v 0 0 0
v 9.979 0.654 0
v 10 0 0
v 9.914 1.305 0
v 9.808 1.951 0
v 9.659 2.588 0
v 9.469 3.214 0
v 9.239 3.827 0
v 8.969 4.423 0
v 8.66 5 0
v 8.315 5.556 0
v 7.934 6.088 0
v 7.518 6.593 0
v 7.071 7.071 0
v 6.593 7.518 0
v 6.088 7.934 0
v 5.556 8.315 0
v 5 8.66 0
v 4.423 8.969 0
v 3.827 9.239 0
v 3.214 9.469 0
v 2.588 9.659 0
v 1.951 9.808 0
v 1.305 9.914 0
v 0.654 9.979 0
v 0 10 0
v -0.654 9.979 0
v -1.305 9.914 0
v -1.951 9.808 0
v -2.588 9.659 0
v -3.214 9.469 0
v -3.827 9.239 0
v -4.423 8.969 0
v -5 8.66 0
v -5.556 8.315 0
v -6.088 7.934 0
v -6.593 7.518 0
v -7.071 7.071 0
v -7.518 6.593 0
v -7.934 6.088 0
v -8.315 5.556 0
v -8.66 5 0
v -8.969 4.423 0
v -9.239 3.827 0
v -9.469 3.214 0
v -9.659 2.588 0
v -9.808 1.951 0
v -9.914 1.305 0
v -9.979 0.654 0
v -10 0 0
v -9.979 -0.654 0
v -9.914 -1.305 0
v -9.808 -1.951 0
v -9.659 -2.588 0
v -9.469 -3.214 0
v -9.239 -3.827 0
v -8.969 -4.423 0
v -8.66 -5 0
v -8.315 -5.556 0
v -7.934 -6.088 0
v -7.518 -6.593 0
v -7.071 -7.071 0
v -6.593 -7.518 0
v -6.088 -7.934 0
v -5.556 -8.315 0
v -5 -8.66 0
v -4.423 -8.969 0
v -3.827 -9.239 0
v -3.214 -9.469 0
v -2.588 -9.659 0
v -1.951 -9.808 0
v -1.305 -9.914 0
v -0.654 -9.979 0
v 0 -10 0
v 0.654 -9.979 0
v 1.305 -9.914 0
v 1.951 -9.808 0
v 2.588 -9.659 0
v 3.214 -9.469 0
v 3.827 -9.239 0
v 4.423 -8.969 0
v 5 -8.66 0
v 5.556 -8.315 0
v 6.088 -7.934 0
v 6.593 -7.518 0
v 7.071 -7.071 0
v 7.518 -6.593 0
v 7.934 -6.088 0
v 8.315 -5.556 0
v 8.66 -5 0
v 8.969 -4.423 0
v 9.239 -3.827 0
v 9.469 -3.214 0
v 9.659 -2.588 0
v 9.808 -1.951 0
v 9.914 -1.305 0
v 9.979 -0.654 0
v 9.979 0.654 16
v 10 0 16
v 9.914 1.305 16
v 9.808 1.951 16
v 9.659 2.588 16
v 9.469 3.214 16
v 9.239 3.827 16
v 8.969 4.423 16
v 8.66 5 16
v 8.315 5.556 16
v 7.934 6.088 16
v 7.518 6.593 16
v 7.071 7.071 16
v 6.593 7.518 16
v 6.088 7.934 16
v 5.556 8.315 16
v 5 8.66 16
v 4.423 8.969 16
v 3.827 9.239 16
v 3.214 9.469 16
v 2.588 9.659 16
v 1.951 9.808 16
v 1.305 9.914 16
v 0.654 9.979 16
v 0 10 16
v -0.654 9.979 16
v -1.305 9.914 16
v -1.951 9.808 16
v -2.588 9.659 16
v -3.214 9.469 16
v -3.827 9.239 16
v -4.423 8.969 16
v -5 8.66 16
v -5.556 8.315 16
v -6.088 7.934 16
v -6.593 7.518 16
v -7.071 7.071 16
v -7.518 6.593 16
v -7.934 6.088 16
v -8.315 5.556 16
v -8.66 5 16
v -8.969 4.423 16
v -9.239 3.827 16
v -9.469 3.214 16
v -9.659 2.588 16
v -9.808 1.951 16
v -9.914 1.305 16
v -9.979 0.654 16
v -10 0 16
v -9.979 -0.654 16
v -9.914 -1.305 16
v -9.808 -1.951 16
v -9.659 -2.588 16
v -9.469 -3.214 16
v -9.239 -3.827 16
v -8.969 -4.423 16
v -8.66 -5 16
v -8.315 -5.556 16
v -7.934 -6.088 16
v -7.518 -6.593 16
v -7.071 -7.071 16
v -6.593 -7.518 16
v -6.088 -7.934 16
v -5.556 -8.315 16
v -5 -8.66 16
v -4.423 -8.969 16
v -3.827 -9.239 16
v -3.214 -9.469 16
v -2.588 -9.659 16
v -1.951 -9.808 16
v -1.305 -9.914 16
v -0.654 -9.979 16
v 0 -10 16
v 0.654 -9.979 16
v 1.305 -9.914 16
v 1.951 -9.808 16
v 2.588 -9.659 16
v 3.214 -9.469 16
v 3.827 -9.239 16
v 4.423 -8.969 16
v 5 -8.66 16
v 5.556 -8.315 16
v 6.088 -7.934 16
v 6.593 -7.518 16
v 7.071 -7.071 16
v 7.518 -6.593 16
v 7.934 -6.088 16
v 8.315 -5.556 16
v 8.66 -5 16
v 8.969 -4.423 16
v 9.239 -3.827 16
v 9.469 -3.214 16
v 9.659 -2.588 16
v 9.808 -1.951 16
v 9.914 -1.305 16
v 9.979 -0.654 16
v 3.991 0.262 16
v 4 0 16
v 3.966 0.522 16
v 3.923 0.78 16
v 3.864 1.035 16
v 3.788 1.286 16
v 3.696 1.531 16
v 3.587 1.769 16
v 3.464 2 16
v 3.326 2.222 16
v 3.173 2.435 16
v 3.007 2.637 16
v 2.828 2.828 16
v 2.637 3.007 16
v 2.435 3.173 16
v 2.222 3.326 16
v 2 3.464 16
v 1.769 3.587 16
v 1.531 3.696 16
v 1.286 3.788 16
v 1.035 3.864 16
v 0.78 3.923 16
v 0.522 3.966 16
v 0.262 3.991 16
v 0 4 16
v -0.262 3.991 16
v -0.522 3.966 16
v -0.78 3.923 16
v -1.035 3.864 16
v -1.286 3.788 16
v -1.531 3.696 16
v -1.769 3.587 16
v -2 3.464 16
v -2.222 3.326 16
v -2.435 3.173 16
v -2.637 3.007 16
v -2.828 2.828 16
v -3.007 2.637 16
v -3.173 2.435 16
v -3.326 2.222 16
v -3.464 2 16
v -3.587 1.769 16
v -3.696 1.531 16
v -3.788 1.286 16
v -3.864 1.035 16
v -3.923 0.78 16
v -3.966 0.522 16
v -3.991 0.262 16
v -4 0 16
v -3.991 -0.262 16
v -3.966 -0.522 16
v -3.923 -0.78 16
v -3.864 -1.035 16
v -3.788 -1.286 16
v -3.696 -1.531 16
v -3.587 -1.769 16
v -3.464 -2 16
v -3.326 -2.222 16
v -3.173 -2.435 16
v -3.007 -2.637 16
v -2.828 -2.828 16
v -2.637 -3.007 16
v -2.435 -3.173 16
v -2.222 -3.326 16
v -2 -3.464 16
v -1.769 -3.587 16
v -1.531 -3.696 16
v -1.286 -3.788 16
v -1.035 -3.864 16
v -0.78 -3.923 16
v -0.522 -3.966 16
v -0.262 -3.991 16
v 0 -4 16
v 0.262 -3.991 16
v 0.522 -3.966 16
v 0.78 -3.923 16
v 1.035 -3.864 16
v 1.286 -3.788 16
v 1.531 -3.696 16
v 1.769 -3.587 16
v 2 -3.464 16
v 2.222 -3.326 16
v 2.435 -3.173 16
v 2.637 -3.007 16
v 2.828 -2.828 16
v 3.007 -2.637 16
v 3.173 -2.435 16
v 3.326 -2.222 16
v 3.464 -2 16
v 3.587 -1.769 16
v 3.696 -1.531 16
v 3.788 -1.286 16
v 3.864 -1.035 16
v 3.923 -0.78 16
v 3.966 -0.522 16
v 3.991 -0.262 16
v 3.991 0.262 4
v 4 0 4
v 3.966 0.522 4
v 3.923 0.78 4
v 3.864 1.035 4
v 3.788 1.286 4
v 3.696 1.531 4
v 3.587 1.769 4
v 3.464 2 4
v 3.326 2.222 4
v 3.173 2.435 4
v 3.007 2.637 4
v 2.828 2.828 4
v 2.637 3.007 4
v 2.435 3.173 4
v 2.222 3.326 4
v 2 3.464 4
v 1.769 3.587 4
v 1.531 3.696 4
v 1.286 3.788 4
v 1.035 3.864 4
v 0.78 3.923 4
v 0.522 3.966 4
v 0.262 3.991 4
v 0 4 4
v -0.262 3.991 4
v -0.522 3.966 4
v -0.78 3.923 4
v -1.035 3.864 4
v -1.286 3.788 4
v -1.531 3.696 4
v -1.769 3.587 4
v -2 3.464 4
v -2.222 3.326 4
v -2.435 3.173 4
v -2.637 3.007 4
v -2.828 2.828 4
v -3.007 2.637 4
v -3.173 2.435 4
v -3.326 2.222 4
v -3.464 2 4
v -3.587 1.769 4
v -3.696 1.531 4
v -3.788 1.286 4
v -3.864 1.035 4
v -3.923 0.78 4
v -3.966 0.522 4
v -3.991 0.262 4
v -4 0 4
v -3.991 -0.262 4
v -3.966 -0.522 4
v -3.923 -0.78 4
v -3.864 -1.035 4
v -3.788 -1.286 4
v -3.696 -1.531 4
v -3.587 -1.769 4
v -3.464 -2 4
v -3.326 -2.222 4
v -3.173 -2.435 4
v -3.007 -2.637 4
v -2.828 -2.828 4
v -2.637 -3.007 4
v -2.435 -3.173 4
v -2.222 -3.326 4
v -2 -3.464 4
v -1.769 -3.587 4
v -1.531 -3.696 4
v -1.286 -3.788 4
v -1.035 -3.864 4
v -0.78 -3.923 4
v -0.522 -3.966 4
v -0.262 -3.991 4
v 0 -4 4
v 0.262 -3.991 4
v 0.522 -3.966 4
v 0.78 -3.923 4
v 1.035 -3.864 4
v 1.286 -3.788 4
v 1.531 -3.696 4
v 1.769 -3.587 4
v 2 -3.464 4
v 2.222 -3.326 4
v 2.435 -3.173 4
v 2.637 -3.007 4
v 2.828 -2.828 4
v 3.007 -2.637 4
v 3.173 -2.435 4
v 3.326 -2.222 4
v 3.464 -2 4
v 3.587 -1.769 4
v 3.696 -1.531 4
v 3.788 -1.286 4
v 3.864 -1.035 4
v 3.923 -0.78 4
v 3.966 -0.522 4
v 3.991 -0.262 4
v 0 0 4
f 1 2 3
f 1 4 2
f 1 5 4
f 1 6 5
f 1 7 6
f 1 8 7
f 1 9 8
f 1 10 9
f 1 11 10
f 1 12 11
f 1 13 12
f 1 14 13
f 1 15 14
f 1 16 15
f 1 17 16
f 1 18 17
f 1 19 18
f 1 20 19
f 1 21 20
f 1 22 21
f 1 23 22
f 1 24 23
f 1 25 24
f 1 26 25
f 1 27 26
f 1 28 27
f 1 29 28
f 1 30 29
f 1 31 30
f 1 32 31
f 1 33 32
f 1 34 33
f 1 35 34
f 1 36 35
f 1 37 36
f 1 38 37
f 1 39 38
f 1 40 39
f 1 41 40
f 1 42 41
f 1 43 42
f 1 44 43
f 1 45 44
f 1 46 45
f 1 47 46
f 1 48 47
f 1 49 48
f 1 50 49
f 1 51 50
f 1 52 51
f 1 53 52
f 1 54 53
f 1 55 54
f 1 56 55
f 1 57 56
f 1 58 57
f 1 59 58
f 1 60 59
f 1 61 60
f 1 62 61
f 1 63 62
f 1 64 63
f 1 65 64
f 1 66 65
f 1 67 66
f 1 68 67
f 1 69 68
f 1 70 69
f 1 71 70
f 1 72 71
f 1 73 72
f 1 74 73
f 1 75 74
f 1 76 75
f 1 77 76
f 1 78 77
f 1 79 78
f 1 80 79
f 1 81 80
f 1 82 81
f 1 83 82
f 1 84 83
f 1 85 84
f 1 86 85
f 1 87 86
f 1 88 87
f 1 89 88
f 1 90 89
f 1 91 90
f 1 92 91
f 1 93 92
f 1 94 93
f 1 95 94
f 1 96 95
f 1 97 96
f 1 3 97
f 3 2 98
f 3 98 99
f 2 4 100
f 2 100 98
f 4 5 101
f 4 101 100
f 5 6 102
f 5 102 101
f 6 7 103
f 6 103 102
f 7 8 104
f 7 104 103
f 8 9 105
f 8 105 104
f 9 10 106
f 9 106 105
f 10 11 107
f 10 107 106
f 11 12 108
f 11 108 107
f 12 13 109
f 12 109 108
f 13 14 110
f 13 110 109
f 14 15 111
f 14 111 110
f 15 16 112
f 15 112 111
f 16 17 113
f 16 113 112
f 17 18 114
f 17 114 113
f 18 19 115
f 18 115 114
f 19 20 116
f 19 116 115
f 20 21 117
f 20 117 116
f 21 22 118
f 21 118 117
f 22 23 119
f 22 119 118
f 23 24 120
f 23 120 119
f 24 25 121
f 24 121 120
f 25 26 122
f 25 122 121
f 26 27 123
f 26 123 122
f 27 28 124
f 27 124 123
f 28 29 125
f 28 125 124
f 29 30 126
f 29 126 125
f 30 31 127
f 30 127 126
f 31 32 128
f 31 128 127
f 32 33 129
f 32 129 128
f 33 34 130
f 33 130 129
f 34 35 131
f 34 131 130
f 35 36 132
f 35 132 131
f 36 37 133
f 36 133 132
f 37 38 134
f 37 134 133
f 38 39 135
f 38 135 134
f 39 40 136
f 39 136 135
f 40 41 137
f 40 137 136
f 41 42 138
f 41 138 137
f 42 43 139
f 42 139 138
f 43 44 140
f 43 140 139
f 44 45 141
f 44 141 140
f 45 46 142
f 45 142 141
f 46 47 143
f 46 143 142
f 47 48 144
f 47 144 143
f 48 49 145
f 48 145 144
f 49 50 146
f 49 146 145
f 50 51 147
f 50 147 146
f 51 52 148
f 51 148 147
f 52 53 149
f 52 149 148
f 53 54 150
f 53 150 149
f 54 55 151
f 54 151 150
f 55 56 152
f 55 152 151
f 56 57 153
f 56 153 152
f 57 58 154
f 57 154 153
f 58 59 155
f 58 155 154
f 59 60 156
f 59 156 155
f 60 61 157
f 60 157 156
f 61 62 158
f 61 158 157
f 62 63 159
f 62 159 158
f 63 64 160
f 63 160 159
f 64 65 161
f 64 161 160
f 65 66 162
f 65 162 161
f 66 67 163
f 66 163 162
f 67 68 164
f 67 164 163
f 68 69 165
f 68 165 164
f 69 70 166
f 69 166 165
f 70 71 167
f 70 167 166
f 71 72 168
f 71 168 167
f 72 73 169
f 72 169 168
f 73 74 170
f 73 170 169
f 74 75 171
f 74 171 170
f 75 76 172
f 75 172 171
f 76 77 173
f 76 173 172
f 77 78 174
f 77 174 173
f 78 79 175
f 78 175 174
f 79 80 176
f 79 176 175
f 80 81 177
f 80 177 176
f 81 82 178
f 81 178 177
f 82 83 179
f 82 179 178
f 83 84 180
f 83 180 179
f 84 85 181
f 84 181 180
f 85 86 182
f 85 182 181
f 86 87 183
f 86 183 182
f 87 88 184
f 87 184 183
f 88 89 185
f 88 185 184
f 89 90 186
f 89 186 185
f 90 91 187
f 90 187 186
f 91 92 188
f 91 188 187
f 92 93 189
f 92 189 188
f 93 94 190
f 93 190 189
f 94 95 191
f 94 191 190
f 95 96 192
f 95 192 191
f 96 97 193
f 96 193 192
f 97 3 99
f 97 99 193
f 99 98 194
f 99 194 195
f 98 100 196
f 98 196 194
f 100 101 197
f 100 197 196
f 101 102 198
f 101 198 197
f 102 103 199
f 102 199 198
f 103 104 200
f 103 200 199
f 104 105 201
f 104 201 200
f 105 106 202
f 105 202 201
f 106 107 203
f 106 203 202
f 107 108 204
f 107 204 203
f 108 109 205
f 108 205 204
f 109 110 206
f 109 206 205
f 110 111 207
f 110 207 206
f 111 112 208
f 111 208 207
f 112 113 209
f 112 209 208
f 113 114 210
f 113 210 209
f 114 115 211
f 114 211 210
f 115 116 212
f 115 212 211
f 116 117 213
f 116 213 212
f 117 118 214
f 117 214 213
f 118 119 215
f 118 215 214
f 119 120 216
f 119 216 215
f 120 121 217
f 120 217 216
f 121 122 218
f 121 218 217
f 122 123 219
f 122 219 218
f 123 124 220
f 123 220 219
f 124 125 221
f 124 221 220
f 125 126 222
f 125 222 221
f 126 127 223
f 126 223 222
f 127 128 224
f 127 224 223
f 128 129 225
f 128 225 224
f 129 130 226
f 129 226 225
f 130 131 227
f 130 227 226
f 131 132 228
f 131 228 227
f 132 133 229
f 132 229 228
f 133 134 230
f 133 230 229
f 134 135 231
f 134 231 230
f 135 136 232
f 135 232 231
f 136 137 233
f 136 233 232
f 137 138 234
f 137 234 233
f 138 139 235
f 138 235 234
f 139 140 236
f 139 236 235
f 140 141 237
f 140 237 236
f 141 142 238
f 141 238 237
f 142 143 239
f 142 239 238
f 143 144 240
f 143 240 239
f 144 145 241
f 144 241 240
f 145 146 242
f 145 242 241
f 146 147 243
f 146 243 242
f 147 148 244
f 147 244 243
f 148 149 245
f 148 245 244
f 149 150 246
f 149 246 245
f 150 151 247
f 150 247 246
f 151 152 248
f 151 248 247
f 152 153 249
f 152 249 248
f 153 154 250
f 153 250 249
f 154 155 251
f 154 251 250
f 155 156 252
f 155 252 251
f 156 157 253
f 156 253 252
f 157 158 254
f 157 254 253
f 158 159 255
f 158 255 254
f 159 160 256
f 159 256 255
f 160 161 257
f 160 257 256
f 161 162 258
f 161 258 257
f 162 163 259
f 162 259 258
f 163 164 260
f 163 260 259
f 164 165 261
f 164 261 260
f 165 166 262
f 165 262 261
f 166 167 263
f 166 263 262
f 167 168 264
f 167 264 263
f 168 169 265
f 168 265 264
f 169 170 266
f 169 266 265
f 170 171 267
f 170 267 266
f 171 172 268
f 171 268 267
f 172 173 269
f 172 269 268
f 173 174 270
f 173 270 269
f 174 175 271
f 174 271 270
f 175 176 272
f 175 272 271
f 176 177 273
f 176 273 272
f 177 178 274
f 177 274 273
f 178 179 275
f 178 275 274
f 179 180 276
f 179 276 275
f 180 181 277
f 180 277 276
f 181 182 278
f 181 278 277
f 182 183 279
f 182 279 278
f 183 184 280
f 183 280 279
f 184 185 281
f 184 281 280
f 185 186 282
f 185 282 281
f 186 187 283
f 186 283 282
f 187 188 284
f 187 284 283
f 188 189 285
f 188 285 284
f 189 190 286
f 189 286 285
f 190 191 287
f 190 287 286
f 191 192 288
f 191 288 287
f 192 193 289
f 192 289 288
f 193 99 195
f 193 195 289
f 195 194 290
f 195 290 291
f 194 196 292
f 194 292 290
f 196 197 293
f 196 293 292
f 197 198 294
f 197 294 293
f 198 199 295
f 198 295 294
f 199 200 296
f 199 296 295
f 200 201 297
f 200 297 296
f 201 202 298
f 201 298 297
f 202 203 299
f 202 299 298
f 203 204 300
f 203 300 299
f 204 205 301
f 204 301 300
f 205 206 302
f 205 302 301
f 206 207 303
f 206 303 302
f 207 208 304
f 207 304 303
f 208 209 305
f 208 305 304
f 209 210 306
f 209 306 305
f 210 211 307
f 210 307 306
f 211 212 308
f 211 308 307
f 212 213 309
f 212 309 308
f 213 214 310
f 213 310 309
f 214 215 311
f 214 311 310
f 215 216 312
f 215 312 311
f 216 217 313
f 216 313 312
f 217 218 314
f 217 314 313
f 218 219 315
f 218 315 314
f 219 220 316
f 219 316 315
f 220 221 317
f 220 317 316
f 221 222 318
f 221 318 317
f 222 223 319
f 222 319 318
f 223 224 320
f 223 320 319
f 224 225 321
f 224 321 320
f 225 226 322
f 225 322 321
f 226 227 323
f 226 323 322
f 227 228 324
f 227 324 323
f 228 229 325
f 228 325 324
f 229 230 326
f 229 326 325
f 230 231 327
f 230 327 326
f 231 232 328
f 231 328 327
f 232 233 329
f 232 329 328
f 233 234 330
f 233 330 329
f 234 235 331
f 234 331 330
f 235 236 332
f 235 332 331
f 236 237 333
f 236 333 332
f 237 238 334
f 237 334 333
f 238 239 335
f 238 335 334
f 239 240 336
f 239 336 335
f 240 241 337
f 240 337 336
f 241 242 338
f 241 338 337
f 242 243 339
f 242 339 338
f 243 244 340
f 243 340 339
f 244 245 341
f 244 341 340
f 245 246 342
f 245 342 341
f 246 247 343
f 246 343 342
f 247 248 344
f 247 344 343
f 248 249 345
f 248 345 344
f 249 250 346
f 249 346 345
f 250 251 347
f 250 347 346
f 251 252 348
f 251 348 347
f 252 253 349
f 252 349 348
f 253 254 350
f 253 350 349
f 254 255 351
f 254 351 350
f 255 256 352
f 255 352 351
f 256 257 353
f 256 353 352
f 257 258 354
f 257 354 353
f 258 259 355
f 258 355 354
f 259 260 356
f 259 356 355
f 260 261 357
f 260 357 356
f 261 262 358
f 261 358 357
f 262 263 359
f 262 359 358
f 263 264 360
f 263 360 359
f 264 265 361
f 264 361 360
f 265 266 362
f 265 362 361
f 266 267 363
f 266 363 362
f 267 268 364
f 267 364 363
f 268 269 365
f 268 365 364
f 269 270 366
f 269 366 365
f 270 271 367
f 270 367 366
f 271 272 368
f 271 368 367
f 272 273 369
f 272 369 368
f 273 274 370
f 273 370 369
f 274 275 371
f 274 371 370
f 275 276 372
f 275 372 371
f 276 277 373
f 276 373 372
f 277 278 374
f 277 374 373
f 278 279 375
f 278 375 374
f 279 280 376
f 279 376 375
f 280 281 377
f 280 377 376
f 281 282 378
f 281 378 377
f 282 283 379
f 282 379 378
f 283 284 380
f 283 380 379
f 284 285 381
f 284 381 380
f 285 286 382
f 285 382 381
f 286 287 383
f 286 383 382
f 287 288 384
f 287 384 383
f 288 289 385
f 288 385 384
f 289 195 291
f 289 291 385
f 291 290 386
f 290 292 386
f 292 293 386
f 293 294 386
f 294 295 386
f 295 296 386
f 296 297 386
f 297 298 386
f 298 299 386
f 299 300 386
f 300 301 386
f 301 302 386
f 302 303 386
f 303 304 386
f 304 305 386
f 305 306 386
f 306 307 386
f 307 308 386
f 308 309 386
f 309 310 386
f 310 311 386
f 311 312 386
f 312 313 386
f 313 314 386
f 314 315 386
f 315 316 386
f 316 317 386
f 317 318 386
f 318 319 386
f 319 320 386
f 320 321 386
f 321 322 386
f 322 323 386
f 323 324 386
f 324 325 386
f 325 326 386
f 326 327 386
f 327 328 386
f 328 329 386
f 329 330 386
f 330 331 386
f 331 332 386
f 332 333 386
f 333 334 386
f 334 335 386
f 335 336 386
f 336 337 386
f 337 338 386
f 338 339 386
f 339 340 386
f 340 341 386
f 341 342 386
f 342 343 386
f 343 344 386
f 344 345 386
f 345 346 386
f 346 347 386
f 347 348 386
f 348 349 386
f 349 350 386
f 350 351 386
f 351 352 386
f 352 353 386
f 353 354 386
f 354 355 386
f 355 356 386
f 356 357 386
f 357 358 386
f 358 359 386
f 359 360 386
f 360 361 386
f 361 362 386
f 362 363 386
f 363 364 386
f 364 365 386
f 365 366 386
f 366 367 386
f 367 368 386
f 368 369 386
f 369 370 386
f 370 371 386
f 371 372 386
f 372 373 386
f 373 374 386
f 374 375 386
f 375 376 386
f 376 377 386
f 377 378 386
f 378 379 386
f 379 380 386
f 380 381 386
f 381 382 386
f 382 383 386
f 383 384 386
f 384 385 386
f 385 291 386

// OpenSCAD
// Original MechIntel educational model. CC0-1.0. Units: mm.
// Not a standardized or load-rated component.
$fn=96;
// Section points: [radius, height], mm. Edit to change the profile.
section=[[0, 0], [10, 0], [10, 16], [4, 16], [4, 4], [0, 4]];
rotate_extrude($fn=96) polygon(points=section);
